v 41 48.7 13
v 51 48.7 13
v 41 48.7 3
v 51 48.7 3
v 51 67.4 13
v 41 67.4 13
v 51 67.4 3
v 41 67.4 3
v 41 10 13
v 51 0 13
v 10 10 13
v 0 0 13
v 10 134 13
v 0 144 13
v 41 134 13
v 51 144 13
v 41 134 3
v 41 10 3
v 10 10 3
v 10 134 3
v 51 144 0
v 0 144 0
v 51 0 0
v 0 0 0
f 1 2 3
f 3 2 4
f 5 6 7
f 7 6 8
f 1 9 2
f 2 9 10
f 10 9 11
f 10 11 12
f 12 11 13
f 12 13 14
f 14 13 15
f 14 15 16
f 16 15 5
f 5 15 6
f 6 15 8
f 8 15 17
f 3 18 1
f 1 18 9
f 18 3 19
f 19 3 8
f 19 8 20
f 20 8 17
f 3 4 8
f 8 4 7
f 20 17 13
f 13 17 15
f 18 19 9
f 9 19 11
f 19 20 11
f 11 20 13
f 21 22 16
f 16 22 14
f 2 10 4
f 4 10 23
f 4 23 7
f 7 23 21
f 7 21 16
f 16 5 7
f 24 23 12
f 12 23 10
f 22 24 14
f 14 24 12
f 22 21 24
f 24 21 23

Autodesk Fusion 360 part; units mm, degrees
sketch "Sketch1" plane through (0, 0, 0) normal (0, 0, 1) x (1, 0, 0)
  line L0 (0, 0) -> (51, 0)
  line L1 (51, 0) -> (51, 144)
  line L2 (51, 144) -> (0, 144)
  line L3 (0, 144) -> (0, 0)
  line L4 (10, 10) -> (41, 10)
  line L5 (41, 10) -> (41, 134)
  line L6 (41, 134) -> (10, 134)
  line L7 (10, 134) -> (10, 10)
  dimension "d1" = 51
  dimension "d2" = 144
  dimension "d5" = 31
  dimension "d6" = 124
extrude "Extrude1" add sketch "Sketch1" along normal blind 13
sketch "Sketch2" plane through (0, 0, 0) normal (0, 0, -1) x (1, 0, 0)
  line L0 (10, -134) -> (10, -10)
  line L1 (10, -10) -> (41, -10)
  line L2 (41, -10) -> (41, -134)
  line L3 (41, -134) -> (10, -134)
  line L4 (0, 0) -> (0, -144)
  line L5 (0, -144) -> (51, -144)
  line L6 (51, -144) -> (51, 0)
  line L7 (51, 0) -> (0, 0)
  line L8 (41, -134) -> (10, -134)
  line L9 (10, -134) -> (10, -10)
  line L10 (10, -10) -> (41, -10)
  line L11 (41, -10) -> (41, -134)
extrude "Extrude2" add sketch "Sketch2" against normal blind 3 contours L0 L1 L2 L3 L8 L9 L10 L11
sketch "Sketch3" plane through (0, 0, 13) normal (0, 0, 1) x (-1, 0, 0)
  line L0 (-10, -10) -> (-10, -134)
  line L1 (-10, -134) -> (-41, -134)
  line L2 (-41, -134) -> (-41, -10)
  line L3 (-41, -10) -> (-10, -10)
  line L4 (0, -144) -> (0, 0)
  line L5 (0, 0) -> (-51, 0)
  line L6 (-51, 0) -> (-51, -144)
  line L7 (-51, -144) -> (0, -144)
  line L8 (-41, -48.7) -> (-41, -67.4)
  line L9 (-41, -48.7) -> (-51, -48.7)
  line L10 (-51, -48.7) -> (-51, -67.4)
  line L11 (-51, -67.4) -> (-41, -67.4)
  line L12 (-41, -67.4) -> (-41, -48.7)
  dimension "d11" = 38.7
  dimension "d12" = 18.7
  dimension "d13" = 18.7
extrude "Extrude3" cut sketch "Sketch3" against normal blind 10 contours L2 L6 L8 L9 L10 L11 L12
